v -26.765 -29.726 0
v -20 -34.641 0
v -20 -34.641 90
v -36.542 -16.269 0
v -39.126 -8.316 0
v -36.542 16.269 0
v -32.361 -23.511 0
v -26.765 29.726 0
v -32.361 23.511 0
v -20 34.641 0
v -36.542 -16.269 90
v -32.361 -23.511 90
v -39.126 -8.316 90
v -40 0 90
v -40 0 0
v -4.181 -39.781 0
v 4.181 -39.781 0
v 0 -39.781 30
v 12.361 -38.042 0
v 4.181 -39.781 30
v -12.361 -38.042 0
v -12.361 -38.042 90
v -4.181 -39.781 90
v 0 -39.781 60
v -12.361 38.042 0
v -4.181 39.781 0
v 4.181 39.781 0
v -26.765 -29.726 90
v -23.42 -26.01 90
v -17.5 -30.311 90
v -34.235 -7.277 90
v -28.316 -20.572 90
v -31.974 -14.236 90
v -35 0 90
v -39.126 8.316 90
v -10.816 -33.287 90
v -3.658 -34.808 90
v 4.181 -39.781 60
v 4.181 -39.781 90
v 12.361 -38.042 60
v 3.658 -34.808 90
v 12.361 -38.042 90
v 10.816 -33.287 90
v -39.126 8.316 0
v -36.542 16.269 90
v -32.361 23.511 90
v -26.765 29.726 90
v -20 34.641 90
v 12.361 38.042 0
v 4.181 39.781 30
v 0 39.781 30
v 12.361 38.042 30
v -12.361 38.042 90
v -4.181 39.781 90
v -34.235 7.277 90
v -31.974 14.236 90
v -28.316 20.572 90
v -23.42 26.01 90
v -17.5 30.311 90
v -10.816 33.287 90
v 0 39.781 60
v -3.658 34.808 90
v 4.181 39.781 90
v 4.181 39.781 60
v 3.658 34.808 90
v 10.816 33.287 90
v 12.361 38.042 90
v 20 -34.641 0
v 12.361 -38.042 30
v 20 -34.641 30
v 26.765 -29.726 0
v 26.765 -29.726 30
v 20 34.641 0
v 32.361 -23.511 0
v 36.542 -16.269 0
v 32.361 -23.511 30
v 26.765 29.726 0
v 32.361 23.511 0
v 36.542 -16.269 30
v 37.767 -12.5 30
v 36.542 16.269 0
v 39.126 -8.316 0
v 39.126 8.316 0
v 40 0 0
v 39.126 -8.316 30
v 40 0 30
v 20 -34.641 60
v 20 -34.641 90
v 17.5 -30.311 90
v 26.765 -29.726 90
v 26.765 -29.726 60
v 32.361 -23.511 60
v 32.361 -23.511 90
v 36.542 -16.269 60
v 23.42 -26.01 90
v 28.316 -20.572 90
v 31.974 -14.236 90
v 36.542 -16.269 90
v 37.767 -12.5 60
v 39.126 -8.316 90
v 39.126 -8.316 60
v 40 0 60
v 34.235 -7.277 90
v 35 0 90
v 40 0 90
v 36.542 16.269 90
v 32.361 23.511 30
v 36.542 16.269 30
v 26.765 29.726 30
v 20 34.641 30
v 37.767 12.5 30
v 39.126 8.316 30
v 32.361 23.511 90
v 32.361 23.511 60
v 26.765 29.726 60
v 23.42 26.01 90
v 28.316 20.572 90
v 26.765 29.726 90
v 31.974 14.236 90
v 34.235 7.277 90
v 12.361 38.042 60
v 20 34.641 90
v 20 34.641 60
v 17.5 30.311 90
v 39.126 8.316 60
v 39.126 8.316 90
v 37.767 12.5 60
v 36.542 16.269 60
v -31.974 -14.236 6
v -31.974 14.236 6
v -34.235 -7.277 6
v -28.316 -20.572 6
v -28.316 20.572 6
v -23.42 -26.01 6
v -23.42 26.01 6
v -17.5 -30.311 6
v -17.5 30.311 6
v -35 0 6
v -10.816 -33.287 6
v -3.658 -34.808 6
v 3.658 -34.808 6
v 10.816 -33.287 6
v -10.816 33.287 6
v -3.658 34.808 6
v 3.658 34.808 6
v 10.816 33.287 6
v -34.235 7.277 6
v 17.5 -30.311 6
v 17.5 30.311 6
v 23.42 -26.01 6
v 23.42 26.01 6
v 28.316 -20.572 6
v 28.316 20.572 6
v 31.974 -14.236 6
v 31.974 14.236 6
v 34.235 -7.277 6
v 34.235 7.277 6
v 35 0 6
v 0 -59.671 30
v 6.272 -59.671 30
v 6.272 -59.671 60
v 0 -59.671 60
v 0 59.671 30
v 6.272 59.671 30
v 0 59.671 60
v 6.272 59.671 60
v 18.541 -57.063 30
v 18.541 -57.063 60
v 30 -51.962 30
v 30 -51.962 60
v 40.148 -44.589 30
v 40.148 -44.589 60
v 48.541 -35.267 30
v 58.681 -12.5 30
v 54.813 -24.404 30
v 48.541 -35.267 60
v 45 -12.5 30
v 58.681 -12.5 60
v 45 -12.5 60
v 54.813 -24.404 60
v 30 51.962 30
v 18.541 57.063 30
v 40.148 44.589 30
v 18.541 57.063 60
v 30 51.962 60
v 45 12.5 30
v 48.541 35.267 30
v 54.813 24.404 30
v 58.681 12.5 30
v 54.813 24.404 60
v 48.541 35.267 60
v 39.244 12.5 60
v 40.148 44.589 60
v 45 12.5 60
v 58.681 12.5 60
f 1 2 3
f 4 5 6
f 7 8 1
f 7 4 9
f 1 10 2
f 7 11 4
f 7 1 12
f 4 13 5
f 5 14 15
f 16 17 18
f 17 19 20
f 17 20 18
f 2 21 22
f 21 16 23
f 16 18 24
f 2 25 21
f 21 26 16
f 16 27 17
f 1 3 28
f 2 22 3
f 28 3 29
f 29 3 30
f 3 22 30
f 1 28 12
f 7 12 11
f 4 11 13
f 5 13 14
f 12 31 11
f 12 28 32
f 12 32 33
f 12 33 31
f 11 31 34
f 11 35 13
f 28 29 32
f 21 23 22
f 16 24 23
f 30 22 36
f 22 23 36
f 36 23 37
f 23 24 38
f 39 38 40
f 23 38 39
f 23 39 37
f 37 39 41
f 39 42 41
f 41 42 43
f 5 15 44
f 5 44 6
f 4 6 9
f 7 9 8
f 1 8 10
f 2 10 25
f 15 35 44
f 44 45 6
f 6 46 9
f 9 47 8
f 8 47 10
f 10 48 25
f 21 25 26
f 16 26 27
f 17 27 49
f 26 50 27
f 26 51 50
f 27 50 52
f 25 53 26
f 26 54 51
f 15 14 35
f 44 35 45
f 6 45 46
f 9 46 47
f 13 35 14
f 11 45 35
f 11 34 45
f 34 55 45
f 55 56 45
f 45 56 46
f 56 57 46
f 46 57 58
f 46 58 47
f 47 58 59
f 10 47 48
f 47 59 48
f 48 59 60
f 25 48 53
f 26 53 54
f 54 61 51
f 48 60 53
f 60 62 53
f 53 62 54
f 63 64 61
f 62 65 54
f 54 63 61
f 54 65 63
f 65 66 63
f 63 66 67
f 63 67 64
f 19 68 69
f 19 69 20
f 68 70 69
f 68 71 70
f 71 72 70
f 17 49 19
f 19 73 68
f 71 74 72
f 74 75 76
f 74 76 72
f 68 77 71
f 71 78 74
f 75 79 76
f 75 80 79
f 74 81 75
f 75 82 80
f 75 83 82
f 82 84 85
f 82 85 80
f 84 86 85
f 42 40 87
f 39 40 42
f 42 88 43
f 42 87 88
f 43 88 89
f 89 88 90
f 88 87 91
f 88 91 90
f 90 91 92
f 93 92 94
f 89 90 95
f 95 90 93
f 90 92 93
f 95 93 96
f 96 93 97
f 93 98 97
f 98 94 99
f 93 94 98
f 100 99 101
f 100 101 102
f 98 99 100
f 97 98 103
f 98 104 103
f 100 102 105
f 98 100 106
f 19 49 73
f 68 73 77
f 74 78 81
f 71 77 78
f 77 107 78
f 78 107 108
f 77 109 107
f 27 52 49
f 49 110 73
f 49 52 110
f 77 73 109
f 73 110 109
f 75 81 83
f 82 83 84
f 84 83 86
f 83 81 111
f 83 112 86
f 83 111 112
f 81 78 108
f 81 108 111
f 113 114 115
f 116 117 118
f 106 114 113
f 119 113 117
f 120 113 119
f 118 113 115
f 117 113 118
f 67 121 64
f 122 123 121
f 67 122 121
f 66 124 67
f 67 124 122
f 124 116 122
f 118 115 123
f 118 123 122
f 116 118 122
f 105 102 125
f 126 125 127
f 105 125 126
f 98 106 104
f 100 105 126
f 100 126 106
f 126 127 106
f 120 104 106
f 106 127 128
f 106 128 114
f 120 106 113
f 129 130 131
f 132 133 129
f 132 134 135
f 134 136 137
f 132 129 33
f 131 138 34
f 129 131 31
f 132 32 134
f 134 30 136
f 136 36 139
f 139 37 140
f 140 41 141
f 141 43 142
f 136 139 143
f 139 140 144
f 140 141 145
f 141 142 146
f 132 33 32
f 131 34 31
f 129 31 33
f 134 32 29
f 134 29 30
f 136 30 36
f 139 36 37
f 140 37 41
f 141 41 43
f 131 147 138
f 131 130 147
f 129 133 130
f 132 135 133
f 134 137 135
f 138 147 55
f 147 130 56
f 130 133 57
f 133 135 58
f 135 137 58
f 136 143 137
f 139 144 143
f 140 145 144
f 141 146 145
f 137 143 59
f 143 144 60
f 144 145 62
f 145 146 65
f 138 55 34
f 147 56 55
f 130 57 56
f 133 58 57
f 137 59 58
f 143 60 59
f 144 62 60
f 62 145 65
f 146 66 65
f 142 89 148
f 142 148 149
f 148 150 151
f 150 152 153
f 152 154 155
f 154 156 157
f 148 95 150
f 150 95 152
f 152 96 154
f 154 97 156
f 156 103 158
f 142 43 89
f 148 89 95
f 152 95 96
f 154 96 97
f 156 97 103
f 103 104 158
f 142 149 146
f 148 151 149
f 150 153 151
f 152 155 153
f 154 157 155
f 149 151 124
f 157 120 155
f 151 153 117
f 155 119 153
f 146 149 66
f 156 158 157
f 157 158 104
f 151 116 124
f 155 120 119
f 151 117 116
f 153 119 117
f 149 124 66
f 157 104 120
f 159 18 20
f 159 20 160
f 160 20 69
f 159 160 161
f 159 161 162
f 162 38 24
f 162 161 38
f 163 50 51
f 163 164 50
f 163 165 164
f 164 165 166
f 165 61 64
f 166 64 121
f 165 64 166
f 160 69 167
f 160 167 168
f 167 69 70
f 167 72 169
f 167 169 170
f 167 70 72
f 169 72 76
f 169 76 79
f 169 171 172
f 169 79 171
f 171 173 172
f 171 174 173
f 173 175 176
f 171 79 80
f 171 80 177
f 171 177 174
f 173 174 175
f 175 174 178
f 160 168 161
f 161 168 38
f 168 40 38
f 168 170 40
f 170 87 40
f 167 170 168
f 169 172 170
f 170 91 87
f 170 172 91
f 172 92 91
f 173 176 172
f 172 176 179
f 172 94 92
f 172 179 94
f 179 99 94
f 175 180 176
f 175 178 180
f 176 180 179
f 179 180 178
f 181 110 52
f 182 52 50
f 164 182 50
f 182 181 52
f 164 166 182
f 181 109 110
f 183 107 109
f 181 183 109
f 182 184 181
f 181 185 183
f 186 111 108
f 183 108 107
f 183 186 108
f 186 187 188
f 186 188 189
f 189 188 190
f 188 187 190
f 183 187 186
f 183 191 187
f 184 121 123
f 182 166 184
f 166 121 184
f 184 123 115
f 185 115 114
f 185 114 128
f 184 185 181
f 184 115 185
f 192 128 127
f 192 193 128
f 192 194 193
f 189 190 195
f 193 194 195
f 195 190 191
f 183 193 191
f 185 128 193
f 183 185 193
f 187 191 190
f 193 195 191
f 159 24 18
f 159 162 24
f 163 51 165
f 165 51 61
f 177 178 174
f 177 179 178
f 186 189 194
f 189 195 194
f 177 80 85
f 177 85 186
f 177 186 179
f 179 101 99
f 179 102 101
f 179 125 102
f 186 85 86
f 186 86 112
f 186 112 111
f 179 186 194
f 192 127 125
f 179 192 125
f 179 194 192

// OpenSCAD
// マグカップ
module mug() {
    // 外径80mm = 半径40mm
    // 内径70mm = 半径35mm
    // 肉厚 5mm
    // 高さ 90mm
    // 底面厚み 6mm
    
    difference() {
        // 外側円筒
        cylinder(h = 90, r = 40, center = false);
        
        // 内側の空洞(底面6mm分は残す)
        translate([0, 0, 6]) {
            cylinder(h = 84, r = 35, center = false);
        }
    }
}

// D字形取手
module handle() {
    // 取手の内側寸法
    handle_inner_height = 30;  // 高さ30mm
    handle_inner_width = 25;   // 幅25mm
    
    // 取手開始高さ(中央付近: 90/2 - 30/2 = 30)
    handle_z = 30;
    
    // 取手は本体外径(40mm)から延びる
    // 外側半円部分の半径を定義
    handle_depth = 20;  // 本体から延びる距離
    
    union() {
        // 取手の本体側ブロック(直線部分)
        translate([35, -handle_inner_width/2, handle_z]) {
            cube([10, handle_inner_width, handle_inner_height]);
        }
        
        // 取手の外側半円部分
        // X >= 40 の部分の円形部分
        difference() {
            // 取手用円筒セクション
            translate([0, 0, handle_z]) {
                difference() {
                    // 外側半径 = 40 + 20 = 60mm
                    cylinder(h = handle_inner_height, r = 40 + handle_depth, center = false);
                    // 内側を削除(内径との干渉を避ける)
                    cylinder(h = handle_inner_height, r = 40, center = false);
                    // X < 40 の部分を削除(+X側のみ)
                    translate([-100, -100, -1]) {
                        cube([100, 200, handle_inner_height + 2]);
                    }
                }
            }
            // 取手内側をくり抜く
            translate([40, -handle_inner_width/2, handle_z - 1]) {
                cube([handle_depth + 1, handle_inner_width, handle_inner_height + 2]);
            }
        }
    }
}

// メイン構造
union() {
    mug();
    handle();
}
